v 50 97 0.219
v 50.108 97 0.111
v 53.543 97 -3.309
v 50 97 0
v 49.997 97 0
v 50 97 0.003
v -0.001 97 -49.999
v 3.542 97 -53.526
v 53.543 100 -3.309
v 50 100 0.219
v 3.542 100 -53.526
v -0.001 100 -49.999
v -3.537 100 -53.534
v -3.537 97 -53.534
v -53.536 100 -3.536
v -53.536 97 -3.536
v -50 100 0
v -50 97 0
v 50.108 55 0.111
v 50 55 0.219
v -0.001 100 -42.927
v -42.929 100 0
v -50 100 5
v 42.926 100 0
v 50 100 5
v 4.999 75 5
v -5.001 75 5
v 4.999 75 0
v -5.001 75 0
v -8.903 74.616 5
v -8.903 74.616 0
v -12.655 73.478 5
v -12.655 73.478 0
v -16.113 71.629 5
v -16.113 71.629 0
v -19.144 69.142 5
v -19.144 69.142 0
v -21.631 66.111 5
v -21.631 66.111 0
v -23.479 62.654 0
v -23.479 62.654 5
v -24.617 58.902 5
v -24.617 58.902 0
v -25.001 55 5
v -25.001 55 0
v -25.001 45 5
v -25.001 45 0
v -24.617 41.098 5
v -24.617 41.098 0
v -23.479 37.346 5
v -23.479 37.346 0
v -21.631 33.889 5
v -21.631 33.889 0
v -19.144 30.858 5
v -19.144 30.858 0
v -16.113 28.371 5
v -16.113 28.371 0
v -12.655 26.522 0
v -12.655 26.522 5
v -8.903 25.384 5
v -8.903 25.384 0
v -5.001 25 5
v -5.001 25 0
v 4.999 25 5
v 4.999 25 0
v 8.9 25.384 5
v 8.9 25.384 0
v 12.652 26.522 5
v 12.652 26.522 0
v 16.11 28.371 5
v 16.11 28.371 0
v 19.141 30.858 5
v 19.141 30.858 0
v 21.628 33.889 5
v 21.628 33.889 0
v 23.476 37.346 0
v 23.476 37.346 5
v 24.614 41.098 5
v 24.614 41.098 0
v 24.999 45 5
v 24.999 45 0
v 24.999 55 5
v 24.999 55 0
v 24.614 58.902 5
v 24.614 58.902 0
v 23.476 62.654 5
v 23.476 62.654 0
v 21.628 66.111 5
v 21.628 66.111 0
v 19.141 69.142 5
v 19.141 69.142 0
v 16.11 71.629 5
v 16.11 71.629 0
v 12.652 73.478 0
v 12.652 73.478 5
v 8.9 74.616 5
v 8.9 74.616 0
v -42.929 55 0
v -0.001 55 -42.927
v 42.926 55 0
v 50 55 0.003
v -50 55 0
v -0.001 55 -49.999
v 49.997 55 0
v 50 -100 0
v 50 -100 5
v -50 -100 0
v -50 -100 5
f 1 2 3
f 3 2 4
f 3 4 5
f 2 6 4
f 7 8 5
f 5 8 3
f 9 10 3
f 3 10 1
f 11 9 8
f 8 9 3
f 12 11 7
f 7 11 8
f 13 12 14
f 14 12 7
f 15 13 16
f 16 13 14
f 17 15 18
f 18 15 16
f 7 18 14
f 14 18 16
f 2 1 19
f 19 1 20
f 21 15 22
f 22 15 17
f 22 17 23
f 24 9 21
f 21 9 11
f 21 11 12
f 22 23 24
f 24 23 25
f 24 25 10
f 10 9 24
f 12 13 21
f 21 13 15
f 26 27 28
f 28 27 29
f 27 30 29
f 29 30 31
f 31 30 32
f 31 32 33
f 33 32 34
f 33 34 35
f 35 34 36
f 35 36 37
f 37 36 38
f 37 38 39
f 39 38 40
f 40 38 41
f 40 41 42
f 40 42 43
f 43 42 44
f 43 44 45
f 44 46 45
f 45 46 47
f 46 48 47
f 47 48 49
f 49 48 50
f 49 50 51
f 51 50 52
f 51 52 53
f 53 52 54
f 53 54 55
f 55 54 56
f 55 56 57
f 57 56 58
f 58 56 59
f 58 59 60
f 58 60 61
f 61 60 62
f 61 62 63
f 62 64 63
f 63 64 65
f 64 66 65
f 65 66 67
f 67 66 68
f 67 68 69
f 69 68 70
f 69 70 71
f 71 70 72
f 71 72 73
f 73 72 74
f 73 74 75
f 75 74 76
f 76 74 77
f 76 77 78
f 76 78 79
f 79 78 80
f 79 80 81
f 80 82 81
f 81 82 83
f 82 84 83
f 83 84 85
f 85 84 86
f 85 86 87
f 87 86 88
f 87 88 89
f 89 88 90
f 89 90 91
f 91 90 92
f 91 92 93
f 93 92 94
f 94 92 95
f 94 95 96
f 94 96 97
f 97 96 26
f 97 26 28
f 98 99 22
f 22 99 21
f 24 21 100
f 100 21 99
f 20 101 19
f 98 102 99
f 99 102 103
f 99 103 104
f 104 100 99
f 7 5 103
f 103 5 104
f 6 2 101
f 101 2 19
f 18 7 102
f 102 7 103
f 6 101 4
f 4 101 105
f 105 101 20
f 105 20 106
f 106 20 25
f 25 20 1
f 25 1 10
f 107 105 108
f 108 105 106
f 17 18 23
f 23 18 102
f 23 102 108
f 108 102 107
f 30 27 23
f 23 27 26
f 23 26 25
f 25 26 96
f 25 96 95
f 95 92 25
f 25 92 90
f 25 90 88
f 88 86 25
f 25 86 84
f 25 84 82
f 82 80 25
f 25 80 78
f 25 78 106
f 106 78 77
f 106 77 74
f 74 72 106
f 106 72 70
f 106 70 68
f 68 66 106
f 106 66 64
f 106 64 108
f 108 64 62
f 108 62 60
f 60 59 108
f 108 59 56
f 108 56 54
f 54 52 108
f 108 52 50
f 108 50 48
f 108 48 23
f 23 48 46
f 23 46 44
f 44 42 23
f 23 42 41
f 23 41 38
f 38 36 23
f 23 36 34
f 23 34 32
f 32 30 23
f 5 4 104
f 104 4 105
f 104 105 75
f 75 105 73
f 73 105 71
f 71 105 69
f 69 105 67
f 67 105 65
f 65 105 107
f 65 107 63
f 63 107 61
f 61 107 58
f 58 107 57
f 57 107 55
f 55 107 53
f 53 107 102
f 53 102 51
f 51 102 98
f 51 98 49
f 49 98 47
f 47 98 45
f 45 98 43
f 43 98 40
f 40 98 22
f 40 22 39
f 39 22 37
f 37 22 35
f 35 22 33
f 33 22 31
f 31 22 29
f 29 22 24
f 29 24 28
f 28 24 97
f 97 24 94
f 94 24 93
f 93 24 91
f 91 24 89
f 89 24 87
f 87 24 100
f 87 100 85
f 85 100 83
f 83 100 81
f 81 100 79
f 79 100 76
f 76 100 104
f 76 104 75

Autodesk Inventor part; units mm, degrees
ref_plane "YZ Plane" through (0, 0, 0) normal (1, 0, 0) x (0, 1, 0)
ref_plane "XZ Plane" through (0, 0, 0) normal (0, 1, 0) x (-1, 0, 0)
ref_plane "XY Plane" through (0, 0, 0) normal (0, 0, 1) x (1, 0, 0)
sketch "Sketch1" plane through (0, 0, 0) normal (0, 0, 1) x (1, 0, 0)
  line L0 (-50, -100) -> (50, -100)
  line L1 (50, -100) -> (50, 100)
  line L2 (50, 100) -> (-50, 100)
  line L3 (-50, 100) -> (-50, -100)
  line L4 (-50, -100) -> (50, 100) construction
  line L5 (50, -100) -> (-50, 100) construction
  point P0 (0, 0)
  dimension "d0" = 100
  dimension "d1" = 200
extrude "Extrusion1" add sketch "Sketch1" along normal blind 5
sketch "Sketch2" plane through (-50, 100, 0) normal (0, 1, 0) x (1, 0, 0)
  line L0 (0, 0) -> (100, 0) projected
  line L1 (0, 0) -> (49.9986, 49.9986)
  line L2 (49.9986, 49.9986) -> (53.5341, 46.463)
  line L3 (53.5341, 46.463) -> (3.5355, -3.5355)
  line L4 (3.5355, -3.5355) -> (0, 0)
  line L5 (0, 0) -> (70.7086, 0) construction
  line L6 (100.108, -0.1109) -> (53.5341, 46.463)
  line L7 (53.5341, 46.463) -> (49.9986, 42.9275)
  line L8 (49.9986, 42.9275) -> (96.5724, -3.6464)
  line L9 (96.5724, -3.6464) -> (100.108, -0.1109)
  point P0 (50, 0)
  point P1 (49.9986, 42.9275)
  dimension "d4" = 45
  dimension "d5" = 5
  dimension "d6" = 5
extrude "Extrusion2" add sketch "Sketch2" against normal blind 45 contours L1 L2 L3 L0 | L0 L3 L4 | L8 L3 L6 L0 | L0 L6 L9 L8
sketch "Sketch6" plane through (0, 0, 5) normal (0, 0, 1) x (1, 0, 0)
  line L0 (4.9986, 75) -> (-5.0014, 75)
  line L1 (-25.0014, 55) -> (-25.0014, 45)
  line L2 (-5.0014, 25) -> (4.9986, 25)
  line L3 (24.9986, 45) -> (24.9986, 55)
  line L4 (24.9986, 75) -> (-25.0014, 25) construction
  line L5 (-25.0014, 75) -> (24.9986, 25) construction
  arc A0 (4.9986, 25) -> (24.9986, 45) centre (4.9986, 45) ccw
  arc A1 (24.9986, 55) -> (4.9986, 75) centre (4.9986, 55) ccw
  arc A2 (-5.0014, 75) -> (-25.0014, 55) centre (-5.0014, 55) ccw
  arc A3 (-25.0014, 45) -> (-5.0014, 25) centre (-5.0014, 45) ccw
  point P0 (0, 0)
  point P1 (-0.0014, 50)
  dimension "d21" = 50
  dimension "d22" = 50
  dimension "d23" = 20
extrude "Extrusion6" cut sketch "Sketch6" against normal blind 5
sketch "Sketch10" plane through (-50, 100, 5) normal (0, 1, 0) x (1, 0, 0)
  line L0 (0, 5) -> (7.0711, 5) projected
  line L1 (49.9986, 54.9986) -> (99.9971, 5) projected
  line L2 (0, 5) -> (49.9986, 54.9986)
  line L3 (49.9986, 54.9986) -> (46.463, 58.5341)
  line L4 (46.463, 58.5341) -> (-3.5355, 8.5355)
  line L5 (-3.5355, 8.5355) -> (0, 5)
  line L6 (100, 4.7812) -> (100, 0) projected
  line L7 (100, 4.7812) -> (49.9986, 54.9986)
  line L8 (49.9986, 54.9986) -> (53.5417, 58.5265)
  line L9 (53.5417, 58.5265) -> (103.5431, 8.3091)
  line L10 (103.5431, 8.3091) -> (100, 4.7812)
  line L11 (92.926, 5) -> (49.9986, 47.9275) projected
  line L12 (100, 0) -> (0, 0) projected
  line L13 (0, 0) -> (100, 0)
  point P0 (50, 5)
  dimension "d33" = 5
  dimension "d34" = 5
extrude "Extrusion9" add sketch "Sketch10" against normal blind 3
properties part number "fixation_v07"
